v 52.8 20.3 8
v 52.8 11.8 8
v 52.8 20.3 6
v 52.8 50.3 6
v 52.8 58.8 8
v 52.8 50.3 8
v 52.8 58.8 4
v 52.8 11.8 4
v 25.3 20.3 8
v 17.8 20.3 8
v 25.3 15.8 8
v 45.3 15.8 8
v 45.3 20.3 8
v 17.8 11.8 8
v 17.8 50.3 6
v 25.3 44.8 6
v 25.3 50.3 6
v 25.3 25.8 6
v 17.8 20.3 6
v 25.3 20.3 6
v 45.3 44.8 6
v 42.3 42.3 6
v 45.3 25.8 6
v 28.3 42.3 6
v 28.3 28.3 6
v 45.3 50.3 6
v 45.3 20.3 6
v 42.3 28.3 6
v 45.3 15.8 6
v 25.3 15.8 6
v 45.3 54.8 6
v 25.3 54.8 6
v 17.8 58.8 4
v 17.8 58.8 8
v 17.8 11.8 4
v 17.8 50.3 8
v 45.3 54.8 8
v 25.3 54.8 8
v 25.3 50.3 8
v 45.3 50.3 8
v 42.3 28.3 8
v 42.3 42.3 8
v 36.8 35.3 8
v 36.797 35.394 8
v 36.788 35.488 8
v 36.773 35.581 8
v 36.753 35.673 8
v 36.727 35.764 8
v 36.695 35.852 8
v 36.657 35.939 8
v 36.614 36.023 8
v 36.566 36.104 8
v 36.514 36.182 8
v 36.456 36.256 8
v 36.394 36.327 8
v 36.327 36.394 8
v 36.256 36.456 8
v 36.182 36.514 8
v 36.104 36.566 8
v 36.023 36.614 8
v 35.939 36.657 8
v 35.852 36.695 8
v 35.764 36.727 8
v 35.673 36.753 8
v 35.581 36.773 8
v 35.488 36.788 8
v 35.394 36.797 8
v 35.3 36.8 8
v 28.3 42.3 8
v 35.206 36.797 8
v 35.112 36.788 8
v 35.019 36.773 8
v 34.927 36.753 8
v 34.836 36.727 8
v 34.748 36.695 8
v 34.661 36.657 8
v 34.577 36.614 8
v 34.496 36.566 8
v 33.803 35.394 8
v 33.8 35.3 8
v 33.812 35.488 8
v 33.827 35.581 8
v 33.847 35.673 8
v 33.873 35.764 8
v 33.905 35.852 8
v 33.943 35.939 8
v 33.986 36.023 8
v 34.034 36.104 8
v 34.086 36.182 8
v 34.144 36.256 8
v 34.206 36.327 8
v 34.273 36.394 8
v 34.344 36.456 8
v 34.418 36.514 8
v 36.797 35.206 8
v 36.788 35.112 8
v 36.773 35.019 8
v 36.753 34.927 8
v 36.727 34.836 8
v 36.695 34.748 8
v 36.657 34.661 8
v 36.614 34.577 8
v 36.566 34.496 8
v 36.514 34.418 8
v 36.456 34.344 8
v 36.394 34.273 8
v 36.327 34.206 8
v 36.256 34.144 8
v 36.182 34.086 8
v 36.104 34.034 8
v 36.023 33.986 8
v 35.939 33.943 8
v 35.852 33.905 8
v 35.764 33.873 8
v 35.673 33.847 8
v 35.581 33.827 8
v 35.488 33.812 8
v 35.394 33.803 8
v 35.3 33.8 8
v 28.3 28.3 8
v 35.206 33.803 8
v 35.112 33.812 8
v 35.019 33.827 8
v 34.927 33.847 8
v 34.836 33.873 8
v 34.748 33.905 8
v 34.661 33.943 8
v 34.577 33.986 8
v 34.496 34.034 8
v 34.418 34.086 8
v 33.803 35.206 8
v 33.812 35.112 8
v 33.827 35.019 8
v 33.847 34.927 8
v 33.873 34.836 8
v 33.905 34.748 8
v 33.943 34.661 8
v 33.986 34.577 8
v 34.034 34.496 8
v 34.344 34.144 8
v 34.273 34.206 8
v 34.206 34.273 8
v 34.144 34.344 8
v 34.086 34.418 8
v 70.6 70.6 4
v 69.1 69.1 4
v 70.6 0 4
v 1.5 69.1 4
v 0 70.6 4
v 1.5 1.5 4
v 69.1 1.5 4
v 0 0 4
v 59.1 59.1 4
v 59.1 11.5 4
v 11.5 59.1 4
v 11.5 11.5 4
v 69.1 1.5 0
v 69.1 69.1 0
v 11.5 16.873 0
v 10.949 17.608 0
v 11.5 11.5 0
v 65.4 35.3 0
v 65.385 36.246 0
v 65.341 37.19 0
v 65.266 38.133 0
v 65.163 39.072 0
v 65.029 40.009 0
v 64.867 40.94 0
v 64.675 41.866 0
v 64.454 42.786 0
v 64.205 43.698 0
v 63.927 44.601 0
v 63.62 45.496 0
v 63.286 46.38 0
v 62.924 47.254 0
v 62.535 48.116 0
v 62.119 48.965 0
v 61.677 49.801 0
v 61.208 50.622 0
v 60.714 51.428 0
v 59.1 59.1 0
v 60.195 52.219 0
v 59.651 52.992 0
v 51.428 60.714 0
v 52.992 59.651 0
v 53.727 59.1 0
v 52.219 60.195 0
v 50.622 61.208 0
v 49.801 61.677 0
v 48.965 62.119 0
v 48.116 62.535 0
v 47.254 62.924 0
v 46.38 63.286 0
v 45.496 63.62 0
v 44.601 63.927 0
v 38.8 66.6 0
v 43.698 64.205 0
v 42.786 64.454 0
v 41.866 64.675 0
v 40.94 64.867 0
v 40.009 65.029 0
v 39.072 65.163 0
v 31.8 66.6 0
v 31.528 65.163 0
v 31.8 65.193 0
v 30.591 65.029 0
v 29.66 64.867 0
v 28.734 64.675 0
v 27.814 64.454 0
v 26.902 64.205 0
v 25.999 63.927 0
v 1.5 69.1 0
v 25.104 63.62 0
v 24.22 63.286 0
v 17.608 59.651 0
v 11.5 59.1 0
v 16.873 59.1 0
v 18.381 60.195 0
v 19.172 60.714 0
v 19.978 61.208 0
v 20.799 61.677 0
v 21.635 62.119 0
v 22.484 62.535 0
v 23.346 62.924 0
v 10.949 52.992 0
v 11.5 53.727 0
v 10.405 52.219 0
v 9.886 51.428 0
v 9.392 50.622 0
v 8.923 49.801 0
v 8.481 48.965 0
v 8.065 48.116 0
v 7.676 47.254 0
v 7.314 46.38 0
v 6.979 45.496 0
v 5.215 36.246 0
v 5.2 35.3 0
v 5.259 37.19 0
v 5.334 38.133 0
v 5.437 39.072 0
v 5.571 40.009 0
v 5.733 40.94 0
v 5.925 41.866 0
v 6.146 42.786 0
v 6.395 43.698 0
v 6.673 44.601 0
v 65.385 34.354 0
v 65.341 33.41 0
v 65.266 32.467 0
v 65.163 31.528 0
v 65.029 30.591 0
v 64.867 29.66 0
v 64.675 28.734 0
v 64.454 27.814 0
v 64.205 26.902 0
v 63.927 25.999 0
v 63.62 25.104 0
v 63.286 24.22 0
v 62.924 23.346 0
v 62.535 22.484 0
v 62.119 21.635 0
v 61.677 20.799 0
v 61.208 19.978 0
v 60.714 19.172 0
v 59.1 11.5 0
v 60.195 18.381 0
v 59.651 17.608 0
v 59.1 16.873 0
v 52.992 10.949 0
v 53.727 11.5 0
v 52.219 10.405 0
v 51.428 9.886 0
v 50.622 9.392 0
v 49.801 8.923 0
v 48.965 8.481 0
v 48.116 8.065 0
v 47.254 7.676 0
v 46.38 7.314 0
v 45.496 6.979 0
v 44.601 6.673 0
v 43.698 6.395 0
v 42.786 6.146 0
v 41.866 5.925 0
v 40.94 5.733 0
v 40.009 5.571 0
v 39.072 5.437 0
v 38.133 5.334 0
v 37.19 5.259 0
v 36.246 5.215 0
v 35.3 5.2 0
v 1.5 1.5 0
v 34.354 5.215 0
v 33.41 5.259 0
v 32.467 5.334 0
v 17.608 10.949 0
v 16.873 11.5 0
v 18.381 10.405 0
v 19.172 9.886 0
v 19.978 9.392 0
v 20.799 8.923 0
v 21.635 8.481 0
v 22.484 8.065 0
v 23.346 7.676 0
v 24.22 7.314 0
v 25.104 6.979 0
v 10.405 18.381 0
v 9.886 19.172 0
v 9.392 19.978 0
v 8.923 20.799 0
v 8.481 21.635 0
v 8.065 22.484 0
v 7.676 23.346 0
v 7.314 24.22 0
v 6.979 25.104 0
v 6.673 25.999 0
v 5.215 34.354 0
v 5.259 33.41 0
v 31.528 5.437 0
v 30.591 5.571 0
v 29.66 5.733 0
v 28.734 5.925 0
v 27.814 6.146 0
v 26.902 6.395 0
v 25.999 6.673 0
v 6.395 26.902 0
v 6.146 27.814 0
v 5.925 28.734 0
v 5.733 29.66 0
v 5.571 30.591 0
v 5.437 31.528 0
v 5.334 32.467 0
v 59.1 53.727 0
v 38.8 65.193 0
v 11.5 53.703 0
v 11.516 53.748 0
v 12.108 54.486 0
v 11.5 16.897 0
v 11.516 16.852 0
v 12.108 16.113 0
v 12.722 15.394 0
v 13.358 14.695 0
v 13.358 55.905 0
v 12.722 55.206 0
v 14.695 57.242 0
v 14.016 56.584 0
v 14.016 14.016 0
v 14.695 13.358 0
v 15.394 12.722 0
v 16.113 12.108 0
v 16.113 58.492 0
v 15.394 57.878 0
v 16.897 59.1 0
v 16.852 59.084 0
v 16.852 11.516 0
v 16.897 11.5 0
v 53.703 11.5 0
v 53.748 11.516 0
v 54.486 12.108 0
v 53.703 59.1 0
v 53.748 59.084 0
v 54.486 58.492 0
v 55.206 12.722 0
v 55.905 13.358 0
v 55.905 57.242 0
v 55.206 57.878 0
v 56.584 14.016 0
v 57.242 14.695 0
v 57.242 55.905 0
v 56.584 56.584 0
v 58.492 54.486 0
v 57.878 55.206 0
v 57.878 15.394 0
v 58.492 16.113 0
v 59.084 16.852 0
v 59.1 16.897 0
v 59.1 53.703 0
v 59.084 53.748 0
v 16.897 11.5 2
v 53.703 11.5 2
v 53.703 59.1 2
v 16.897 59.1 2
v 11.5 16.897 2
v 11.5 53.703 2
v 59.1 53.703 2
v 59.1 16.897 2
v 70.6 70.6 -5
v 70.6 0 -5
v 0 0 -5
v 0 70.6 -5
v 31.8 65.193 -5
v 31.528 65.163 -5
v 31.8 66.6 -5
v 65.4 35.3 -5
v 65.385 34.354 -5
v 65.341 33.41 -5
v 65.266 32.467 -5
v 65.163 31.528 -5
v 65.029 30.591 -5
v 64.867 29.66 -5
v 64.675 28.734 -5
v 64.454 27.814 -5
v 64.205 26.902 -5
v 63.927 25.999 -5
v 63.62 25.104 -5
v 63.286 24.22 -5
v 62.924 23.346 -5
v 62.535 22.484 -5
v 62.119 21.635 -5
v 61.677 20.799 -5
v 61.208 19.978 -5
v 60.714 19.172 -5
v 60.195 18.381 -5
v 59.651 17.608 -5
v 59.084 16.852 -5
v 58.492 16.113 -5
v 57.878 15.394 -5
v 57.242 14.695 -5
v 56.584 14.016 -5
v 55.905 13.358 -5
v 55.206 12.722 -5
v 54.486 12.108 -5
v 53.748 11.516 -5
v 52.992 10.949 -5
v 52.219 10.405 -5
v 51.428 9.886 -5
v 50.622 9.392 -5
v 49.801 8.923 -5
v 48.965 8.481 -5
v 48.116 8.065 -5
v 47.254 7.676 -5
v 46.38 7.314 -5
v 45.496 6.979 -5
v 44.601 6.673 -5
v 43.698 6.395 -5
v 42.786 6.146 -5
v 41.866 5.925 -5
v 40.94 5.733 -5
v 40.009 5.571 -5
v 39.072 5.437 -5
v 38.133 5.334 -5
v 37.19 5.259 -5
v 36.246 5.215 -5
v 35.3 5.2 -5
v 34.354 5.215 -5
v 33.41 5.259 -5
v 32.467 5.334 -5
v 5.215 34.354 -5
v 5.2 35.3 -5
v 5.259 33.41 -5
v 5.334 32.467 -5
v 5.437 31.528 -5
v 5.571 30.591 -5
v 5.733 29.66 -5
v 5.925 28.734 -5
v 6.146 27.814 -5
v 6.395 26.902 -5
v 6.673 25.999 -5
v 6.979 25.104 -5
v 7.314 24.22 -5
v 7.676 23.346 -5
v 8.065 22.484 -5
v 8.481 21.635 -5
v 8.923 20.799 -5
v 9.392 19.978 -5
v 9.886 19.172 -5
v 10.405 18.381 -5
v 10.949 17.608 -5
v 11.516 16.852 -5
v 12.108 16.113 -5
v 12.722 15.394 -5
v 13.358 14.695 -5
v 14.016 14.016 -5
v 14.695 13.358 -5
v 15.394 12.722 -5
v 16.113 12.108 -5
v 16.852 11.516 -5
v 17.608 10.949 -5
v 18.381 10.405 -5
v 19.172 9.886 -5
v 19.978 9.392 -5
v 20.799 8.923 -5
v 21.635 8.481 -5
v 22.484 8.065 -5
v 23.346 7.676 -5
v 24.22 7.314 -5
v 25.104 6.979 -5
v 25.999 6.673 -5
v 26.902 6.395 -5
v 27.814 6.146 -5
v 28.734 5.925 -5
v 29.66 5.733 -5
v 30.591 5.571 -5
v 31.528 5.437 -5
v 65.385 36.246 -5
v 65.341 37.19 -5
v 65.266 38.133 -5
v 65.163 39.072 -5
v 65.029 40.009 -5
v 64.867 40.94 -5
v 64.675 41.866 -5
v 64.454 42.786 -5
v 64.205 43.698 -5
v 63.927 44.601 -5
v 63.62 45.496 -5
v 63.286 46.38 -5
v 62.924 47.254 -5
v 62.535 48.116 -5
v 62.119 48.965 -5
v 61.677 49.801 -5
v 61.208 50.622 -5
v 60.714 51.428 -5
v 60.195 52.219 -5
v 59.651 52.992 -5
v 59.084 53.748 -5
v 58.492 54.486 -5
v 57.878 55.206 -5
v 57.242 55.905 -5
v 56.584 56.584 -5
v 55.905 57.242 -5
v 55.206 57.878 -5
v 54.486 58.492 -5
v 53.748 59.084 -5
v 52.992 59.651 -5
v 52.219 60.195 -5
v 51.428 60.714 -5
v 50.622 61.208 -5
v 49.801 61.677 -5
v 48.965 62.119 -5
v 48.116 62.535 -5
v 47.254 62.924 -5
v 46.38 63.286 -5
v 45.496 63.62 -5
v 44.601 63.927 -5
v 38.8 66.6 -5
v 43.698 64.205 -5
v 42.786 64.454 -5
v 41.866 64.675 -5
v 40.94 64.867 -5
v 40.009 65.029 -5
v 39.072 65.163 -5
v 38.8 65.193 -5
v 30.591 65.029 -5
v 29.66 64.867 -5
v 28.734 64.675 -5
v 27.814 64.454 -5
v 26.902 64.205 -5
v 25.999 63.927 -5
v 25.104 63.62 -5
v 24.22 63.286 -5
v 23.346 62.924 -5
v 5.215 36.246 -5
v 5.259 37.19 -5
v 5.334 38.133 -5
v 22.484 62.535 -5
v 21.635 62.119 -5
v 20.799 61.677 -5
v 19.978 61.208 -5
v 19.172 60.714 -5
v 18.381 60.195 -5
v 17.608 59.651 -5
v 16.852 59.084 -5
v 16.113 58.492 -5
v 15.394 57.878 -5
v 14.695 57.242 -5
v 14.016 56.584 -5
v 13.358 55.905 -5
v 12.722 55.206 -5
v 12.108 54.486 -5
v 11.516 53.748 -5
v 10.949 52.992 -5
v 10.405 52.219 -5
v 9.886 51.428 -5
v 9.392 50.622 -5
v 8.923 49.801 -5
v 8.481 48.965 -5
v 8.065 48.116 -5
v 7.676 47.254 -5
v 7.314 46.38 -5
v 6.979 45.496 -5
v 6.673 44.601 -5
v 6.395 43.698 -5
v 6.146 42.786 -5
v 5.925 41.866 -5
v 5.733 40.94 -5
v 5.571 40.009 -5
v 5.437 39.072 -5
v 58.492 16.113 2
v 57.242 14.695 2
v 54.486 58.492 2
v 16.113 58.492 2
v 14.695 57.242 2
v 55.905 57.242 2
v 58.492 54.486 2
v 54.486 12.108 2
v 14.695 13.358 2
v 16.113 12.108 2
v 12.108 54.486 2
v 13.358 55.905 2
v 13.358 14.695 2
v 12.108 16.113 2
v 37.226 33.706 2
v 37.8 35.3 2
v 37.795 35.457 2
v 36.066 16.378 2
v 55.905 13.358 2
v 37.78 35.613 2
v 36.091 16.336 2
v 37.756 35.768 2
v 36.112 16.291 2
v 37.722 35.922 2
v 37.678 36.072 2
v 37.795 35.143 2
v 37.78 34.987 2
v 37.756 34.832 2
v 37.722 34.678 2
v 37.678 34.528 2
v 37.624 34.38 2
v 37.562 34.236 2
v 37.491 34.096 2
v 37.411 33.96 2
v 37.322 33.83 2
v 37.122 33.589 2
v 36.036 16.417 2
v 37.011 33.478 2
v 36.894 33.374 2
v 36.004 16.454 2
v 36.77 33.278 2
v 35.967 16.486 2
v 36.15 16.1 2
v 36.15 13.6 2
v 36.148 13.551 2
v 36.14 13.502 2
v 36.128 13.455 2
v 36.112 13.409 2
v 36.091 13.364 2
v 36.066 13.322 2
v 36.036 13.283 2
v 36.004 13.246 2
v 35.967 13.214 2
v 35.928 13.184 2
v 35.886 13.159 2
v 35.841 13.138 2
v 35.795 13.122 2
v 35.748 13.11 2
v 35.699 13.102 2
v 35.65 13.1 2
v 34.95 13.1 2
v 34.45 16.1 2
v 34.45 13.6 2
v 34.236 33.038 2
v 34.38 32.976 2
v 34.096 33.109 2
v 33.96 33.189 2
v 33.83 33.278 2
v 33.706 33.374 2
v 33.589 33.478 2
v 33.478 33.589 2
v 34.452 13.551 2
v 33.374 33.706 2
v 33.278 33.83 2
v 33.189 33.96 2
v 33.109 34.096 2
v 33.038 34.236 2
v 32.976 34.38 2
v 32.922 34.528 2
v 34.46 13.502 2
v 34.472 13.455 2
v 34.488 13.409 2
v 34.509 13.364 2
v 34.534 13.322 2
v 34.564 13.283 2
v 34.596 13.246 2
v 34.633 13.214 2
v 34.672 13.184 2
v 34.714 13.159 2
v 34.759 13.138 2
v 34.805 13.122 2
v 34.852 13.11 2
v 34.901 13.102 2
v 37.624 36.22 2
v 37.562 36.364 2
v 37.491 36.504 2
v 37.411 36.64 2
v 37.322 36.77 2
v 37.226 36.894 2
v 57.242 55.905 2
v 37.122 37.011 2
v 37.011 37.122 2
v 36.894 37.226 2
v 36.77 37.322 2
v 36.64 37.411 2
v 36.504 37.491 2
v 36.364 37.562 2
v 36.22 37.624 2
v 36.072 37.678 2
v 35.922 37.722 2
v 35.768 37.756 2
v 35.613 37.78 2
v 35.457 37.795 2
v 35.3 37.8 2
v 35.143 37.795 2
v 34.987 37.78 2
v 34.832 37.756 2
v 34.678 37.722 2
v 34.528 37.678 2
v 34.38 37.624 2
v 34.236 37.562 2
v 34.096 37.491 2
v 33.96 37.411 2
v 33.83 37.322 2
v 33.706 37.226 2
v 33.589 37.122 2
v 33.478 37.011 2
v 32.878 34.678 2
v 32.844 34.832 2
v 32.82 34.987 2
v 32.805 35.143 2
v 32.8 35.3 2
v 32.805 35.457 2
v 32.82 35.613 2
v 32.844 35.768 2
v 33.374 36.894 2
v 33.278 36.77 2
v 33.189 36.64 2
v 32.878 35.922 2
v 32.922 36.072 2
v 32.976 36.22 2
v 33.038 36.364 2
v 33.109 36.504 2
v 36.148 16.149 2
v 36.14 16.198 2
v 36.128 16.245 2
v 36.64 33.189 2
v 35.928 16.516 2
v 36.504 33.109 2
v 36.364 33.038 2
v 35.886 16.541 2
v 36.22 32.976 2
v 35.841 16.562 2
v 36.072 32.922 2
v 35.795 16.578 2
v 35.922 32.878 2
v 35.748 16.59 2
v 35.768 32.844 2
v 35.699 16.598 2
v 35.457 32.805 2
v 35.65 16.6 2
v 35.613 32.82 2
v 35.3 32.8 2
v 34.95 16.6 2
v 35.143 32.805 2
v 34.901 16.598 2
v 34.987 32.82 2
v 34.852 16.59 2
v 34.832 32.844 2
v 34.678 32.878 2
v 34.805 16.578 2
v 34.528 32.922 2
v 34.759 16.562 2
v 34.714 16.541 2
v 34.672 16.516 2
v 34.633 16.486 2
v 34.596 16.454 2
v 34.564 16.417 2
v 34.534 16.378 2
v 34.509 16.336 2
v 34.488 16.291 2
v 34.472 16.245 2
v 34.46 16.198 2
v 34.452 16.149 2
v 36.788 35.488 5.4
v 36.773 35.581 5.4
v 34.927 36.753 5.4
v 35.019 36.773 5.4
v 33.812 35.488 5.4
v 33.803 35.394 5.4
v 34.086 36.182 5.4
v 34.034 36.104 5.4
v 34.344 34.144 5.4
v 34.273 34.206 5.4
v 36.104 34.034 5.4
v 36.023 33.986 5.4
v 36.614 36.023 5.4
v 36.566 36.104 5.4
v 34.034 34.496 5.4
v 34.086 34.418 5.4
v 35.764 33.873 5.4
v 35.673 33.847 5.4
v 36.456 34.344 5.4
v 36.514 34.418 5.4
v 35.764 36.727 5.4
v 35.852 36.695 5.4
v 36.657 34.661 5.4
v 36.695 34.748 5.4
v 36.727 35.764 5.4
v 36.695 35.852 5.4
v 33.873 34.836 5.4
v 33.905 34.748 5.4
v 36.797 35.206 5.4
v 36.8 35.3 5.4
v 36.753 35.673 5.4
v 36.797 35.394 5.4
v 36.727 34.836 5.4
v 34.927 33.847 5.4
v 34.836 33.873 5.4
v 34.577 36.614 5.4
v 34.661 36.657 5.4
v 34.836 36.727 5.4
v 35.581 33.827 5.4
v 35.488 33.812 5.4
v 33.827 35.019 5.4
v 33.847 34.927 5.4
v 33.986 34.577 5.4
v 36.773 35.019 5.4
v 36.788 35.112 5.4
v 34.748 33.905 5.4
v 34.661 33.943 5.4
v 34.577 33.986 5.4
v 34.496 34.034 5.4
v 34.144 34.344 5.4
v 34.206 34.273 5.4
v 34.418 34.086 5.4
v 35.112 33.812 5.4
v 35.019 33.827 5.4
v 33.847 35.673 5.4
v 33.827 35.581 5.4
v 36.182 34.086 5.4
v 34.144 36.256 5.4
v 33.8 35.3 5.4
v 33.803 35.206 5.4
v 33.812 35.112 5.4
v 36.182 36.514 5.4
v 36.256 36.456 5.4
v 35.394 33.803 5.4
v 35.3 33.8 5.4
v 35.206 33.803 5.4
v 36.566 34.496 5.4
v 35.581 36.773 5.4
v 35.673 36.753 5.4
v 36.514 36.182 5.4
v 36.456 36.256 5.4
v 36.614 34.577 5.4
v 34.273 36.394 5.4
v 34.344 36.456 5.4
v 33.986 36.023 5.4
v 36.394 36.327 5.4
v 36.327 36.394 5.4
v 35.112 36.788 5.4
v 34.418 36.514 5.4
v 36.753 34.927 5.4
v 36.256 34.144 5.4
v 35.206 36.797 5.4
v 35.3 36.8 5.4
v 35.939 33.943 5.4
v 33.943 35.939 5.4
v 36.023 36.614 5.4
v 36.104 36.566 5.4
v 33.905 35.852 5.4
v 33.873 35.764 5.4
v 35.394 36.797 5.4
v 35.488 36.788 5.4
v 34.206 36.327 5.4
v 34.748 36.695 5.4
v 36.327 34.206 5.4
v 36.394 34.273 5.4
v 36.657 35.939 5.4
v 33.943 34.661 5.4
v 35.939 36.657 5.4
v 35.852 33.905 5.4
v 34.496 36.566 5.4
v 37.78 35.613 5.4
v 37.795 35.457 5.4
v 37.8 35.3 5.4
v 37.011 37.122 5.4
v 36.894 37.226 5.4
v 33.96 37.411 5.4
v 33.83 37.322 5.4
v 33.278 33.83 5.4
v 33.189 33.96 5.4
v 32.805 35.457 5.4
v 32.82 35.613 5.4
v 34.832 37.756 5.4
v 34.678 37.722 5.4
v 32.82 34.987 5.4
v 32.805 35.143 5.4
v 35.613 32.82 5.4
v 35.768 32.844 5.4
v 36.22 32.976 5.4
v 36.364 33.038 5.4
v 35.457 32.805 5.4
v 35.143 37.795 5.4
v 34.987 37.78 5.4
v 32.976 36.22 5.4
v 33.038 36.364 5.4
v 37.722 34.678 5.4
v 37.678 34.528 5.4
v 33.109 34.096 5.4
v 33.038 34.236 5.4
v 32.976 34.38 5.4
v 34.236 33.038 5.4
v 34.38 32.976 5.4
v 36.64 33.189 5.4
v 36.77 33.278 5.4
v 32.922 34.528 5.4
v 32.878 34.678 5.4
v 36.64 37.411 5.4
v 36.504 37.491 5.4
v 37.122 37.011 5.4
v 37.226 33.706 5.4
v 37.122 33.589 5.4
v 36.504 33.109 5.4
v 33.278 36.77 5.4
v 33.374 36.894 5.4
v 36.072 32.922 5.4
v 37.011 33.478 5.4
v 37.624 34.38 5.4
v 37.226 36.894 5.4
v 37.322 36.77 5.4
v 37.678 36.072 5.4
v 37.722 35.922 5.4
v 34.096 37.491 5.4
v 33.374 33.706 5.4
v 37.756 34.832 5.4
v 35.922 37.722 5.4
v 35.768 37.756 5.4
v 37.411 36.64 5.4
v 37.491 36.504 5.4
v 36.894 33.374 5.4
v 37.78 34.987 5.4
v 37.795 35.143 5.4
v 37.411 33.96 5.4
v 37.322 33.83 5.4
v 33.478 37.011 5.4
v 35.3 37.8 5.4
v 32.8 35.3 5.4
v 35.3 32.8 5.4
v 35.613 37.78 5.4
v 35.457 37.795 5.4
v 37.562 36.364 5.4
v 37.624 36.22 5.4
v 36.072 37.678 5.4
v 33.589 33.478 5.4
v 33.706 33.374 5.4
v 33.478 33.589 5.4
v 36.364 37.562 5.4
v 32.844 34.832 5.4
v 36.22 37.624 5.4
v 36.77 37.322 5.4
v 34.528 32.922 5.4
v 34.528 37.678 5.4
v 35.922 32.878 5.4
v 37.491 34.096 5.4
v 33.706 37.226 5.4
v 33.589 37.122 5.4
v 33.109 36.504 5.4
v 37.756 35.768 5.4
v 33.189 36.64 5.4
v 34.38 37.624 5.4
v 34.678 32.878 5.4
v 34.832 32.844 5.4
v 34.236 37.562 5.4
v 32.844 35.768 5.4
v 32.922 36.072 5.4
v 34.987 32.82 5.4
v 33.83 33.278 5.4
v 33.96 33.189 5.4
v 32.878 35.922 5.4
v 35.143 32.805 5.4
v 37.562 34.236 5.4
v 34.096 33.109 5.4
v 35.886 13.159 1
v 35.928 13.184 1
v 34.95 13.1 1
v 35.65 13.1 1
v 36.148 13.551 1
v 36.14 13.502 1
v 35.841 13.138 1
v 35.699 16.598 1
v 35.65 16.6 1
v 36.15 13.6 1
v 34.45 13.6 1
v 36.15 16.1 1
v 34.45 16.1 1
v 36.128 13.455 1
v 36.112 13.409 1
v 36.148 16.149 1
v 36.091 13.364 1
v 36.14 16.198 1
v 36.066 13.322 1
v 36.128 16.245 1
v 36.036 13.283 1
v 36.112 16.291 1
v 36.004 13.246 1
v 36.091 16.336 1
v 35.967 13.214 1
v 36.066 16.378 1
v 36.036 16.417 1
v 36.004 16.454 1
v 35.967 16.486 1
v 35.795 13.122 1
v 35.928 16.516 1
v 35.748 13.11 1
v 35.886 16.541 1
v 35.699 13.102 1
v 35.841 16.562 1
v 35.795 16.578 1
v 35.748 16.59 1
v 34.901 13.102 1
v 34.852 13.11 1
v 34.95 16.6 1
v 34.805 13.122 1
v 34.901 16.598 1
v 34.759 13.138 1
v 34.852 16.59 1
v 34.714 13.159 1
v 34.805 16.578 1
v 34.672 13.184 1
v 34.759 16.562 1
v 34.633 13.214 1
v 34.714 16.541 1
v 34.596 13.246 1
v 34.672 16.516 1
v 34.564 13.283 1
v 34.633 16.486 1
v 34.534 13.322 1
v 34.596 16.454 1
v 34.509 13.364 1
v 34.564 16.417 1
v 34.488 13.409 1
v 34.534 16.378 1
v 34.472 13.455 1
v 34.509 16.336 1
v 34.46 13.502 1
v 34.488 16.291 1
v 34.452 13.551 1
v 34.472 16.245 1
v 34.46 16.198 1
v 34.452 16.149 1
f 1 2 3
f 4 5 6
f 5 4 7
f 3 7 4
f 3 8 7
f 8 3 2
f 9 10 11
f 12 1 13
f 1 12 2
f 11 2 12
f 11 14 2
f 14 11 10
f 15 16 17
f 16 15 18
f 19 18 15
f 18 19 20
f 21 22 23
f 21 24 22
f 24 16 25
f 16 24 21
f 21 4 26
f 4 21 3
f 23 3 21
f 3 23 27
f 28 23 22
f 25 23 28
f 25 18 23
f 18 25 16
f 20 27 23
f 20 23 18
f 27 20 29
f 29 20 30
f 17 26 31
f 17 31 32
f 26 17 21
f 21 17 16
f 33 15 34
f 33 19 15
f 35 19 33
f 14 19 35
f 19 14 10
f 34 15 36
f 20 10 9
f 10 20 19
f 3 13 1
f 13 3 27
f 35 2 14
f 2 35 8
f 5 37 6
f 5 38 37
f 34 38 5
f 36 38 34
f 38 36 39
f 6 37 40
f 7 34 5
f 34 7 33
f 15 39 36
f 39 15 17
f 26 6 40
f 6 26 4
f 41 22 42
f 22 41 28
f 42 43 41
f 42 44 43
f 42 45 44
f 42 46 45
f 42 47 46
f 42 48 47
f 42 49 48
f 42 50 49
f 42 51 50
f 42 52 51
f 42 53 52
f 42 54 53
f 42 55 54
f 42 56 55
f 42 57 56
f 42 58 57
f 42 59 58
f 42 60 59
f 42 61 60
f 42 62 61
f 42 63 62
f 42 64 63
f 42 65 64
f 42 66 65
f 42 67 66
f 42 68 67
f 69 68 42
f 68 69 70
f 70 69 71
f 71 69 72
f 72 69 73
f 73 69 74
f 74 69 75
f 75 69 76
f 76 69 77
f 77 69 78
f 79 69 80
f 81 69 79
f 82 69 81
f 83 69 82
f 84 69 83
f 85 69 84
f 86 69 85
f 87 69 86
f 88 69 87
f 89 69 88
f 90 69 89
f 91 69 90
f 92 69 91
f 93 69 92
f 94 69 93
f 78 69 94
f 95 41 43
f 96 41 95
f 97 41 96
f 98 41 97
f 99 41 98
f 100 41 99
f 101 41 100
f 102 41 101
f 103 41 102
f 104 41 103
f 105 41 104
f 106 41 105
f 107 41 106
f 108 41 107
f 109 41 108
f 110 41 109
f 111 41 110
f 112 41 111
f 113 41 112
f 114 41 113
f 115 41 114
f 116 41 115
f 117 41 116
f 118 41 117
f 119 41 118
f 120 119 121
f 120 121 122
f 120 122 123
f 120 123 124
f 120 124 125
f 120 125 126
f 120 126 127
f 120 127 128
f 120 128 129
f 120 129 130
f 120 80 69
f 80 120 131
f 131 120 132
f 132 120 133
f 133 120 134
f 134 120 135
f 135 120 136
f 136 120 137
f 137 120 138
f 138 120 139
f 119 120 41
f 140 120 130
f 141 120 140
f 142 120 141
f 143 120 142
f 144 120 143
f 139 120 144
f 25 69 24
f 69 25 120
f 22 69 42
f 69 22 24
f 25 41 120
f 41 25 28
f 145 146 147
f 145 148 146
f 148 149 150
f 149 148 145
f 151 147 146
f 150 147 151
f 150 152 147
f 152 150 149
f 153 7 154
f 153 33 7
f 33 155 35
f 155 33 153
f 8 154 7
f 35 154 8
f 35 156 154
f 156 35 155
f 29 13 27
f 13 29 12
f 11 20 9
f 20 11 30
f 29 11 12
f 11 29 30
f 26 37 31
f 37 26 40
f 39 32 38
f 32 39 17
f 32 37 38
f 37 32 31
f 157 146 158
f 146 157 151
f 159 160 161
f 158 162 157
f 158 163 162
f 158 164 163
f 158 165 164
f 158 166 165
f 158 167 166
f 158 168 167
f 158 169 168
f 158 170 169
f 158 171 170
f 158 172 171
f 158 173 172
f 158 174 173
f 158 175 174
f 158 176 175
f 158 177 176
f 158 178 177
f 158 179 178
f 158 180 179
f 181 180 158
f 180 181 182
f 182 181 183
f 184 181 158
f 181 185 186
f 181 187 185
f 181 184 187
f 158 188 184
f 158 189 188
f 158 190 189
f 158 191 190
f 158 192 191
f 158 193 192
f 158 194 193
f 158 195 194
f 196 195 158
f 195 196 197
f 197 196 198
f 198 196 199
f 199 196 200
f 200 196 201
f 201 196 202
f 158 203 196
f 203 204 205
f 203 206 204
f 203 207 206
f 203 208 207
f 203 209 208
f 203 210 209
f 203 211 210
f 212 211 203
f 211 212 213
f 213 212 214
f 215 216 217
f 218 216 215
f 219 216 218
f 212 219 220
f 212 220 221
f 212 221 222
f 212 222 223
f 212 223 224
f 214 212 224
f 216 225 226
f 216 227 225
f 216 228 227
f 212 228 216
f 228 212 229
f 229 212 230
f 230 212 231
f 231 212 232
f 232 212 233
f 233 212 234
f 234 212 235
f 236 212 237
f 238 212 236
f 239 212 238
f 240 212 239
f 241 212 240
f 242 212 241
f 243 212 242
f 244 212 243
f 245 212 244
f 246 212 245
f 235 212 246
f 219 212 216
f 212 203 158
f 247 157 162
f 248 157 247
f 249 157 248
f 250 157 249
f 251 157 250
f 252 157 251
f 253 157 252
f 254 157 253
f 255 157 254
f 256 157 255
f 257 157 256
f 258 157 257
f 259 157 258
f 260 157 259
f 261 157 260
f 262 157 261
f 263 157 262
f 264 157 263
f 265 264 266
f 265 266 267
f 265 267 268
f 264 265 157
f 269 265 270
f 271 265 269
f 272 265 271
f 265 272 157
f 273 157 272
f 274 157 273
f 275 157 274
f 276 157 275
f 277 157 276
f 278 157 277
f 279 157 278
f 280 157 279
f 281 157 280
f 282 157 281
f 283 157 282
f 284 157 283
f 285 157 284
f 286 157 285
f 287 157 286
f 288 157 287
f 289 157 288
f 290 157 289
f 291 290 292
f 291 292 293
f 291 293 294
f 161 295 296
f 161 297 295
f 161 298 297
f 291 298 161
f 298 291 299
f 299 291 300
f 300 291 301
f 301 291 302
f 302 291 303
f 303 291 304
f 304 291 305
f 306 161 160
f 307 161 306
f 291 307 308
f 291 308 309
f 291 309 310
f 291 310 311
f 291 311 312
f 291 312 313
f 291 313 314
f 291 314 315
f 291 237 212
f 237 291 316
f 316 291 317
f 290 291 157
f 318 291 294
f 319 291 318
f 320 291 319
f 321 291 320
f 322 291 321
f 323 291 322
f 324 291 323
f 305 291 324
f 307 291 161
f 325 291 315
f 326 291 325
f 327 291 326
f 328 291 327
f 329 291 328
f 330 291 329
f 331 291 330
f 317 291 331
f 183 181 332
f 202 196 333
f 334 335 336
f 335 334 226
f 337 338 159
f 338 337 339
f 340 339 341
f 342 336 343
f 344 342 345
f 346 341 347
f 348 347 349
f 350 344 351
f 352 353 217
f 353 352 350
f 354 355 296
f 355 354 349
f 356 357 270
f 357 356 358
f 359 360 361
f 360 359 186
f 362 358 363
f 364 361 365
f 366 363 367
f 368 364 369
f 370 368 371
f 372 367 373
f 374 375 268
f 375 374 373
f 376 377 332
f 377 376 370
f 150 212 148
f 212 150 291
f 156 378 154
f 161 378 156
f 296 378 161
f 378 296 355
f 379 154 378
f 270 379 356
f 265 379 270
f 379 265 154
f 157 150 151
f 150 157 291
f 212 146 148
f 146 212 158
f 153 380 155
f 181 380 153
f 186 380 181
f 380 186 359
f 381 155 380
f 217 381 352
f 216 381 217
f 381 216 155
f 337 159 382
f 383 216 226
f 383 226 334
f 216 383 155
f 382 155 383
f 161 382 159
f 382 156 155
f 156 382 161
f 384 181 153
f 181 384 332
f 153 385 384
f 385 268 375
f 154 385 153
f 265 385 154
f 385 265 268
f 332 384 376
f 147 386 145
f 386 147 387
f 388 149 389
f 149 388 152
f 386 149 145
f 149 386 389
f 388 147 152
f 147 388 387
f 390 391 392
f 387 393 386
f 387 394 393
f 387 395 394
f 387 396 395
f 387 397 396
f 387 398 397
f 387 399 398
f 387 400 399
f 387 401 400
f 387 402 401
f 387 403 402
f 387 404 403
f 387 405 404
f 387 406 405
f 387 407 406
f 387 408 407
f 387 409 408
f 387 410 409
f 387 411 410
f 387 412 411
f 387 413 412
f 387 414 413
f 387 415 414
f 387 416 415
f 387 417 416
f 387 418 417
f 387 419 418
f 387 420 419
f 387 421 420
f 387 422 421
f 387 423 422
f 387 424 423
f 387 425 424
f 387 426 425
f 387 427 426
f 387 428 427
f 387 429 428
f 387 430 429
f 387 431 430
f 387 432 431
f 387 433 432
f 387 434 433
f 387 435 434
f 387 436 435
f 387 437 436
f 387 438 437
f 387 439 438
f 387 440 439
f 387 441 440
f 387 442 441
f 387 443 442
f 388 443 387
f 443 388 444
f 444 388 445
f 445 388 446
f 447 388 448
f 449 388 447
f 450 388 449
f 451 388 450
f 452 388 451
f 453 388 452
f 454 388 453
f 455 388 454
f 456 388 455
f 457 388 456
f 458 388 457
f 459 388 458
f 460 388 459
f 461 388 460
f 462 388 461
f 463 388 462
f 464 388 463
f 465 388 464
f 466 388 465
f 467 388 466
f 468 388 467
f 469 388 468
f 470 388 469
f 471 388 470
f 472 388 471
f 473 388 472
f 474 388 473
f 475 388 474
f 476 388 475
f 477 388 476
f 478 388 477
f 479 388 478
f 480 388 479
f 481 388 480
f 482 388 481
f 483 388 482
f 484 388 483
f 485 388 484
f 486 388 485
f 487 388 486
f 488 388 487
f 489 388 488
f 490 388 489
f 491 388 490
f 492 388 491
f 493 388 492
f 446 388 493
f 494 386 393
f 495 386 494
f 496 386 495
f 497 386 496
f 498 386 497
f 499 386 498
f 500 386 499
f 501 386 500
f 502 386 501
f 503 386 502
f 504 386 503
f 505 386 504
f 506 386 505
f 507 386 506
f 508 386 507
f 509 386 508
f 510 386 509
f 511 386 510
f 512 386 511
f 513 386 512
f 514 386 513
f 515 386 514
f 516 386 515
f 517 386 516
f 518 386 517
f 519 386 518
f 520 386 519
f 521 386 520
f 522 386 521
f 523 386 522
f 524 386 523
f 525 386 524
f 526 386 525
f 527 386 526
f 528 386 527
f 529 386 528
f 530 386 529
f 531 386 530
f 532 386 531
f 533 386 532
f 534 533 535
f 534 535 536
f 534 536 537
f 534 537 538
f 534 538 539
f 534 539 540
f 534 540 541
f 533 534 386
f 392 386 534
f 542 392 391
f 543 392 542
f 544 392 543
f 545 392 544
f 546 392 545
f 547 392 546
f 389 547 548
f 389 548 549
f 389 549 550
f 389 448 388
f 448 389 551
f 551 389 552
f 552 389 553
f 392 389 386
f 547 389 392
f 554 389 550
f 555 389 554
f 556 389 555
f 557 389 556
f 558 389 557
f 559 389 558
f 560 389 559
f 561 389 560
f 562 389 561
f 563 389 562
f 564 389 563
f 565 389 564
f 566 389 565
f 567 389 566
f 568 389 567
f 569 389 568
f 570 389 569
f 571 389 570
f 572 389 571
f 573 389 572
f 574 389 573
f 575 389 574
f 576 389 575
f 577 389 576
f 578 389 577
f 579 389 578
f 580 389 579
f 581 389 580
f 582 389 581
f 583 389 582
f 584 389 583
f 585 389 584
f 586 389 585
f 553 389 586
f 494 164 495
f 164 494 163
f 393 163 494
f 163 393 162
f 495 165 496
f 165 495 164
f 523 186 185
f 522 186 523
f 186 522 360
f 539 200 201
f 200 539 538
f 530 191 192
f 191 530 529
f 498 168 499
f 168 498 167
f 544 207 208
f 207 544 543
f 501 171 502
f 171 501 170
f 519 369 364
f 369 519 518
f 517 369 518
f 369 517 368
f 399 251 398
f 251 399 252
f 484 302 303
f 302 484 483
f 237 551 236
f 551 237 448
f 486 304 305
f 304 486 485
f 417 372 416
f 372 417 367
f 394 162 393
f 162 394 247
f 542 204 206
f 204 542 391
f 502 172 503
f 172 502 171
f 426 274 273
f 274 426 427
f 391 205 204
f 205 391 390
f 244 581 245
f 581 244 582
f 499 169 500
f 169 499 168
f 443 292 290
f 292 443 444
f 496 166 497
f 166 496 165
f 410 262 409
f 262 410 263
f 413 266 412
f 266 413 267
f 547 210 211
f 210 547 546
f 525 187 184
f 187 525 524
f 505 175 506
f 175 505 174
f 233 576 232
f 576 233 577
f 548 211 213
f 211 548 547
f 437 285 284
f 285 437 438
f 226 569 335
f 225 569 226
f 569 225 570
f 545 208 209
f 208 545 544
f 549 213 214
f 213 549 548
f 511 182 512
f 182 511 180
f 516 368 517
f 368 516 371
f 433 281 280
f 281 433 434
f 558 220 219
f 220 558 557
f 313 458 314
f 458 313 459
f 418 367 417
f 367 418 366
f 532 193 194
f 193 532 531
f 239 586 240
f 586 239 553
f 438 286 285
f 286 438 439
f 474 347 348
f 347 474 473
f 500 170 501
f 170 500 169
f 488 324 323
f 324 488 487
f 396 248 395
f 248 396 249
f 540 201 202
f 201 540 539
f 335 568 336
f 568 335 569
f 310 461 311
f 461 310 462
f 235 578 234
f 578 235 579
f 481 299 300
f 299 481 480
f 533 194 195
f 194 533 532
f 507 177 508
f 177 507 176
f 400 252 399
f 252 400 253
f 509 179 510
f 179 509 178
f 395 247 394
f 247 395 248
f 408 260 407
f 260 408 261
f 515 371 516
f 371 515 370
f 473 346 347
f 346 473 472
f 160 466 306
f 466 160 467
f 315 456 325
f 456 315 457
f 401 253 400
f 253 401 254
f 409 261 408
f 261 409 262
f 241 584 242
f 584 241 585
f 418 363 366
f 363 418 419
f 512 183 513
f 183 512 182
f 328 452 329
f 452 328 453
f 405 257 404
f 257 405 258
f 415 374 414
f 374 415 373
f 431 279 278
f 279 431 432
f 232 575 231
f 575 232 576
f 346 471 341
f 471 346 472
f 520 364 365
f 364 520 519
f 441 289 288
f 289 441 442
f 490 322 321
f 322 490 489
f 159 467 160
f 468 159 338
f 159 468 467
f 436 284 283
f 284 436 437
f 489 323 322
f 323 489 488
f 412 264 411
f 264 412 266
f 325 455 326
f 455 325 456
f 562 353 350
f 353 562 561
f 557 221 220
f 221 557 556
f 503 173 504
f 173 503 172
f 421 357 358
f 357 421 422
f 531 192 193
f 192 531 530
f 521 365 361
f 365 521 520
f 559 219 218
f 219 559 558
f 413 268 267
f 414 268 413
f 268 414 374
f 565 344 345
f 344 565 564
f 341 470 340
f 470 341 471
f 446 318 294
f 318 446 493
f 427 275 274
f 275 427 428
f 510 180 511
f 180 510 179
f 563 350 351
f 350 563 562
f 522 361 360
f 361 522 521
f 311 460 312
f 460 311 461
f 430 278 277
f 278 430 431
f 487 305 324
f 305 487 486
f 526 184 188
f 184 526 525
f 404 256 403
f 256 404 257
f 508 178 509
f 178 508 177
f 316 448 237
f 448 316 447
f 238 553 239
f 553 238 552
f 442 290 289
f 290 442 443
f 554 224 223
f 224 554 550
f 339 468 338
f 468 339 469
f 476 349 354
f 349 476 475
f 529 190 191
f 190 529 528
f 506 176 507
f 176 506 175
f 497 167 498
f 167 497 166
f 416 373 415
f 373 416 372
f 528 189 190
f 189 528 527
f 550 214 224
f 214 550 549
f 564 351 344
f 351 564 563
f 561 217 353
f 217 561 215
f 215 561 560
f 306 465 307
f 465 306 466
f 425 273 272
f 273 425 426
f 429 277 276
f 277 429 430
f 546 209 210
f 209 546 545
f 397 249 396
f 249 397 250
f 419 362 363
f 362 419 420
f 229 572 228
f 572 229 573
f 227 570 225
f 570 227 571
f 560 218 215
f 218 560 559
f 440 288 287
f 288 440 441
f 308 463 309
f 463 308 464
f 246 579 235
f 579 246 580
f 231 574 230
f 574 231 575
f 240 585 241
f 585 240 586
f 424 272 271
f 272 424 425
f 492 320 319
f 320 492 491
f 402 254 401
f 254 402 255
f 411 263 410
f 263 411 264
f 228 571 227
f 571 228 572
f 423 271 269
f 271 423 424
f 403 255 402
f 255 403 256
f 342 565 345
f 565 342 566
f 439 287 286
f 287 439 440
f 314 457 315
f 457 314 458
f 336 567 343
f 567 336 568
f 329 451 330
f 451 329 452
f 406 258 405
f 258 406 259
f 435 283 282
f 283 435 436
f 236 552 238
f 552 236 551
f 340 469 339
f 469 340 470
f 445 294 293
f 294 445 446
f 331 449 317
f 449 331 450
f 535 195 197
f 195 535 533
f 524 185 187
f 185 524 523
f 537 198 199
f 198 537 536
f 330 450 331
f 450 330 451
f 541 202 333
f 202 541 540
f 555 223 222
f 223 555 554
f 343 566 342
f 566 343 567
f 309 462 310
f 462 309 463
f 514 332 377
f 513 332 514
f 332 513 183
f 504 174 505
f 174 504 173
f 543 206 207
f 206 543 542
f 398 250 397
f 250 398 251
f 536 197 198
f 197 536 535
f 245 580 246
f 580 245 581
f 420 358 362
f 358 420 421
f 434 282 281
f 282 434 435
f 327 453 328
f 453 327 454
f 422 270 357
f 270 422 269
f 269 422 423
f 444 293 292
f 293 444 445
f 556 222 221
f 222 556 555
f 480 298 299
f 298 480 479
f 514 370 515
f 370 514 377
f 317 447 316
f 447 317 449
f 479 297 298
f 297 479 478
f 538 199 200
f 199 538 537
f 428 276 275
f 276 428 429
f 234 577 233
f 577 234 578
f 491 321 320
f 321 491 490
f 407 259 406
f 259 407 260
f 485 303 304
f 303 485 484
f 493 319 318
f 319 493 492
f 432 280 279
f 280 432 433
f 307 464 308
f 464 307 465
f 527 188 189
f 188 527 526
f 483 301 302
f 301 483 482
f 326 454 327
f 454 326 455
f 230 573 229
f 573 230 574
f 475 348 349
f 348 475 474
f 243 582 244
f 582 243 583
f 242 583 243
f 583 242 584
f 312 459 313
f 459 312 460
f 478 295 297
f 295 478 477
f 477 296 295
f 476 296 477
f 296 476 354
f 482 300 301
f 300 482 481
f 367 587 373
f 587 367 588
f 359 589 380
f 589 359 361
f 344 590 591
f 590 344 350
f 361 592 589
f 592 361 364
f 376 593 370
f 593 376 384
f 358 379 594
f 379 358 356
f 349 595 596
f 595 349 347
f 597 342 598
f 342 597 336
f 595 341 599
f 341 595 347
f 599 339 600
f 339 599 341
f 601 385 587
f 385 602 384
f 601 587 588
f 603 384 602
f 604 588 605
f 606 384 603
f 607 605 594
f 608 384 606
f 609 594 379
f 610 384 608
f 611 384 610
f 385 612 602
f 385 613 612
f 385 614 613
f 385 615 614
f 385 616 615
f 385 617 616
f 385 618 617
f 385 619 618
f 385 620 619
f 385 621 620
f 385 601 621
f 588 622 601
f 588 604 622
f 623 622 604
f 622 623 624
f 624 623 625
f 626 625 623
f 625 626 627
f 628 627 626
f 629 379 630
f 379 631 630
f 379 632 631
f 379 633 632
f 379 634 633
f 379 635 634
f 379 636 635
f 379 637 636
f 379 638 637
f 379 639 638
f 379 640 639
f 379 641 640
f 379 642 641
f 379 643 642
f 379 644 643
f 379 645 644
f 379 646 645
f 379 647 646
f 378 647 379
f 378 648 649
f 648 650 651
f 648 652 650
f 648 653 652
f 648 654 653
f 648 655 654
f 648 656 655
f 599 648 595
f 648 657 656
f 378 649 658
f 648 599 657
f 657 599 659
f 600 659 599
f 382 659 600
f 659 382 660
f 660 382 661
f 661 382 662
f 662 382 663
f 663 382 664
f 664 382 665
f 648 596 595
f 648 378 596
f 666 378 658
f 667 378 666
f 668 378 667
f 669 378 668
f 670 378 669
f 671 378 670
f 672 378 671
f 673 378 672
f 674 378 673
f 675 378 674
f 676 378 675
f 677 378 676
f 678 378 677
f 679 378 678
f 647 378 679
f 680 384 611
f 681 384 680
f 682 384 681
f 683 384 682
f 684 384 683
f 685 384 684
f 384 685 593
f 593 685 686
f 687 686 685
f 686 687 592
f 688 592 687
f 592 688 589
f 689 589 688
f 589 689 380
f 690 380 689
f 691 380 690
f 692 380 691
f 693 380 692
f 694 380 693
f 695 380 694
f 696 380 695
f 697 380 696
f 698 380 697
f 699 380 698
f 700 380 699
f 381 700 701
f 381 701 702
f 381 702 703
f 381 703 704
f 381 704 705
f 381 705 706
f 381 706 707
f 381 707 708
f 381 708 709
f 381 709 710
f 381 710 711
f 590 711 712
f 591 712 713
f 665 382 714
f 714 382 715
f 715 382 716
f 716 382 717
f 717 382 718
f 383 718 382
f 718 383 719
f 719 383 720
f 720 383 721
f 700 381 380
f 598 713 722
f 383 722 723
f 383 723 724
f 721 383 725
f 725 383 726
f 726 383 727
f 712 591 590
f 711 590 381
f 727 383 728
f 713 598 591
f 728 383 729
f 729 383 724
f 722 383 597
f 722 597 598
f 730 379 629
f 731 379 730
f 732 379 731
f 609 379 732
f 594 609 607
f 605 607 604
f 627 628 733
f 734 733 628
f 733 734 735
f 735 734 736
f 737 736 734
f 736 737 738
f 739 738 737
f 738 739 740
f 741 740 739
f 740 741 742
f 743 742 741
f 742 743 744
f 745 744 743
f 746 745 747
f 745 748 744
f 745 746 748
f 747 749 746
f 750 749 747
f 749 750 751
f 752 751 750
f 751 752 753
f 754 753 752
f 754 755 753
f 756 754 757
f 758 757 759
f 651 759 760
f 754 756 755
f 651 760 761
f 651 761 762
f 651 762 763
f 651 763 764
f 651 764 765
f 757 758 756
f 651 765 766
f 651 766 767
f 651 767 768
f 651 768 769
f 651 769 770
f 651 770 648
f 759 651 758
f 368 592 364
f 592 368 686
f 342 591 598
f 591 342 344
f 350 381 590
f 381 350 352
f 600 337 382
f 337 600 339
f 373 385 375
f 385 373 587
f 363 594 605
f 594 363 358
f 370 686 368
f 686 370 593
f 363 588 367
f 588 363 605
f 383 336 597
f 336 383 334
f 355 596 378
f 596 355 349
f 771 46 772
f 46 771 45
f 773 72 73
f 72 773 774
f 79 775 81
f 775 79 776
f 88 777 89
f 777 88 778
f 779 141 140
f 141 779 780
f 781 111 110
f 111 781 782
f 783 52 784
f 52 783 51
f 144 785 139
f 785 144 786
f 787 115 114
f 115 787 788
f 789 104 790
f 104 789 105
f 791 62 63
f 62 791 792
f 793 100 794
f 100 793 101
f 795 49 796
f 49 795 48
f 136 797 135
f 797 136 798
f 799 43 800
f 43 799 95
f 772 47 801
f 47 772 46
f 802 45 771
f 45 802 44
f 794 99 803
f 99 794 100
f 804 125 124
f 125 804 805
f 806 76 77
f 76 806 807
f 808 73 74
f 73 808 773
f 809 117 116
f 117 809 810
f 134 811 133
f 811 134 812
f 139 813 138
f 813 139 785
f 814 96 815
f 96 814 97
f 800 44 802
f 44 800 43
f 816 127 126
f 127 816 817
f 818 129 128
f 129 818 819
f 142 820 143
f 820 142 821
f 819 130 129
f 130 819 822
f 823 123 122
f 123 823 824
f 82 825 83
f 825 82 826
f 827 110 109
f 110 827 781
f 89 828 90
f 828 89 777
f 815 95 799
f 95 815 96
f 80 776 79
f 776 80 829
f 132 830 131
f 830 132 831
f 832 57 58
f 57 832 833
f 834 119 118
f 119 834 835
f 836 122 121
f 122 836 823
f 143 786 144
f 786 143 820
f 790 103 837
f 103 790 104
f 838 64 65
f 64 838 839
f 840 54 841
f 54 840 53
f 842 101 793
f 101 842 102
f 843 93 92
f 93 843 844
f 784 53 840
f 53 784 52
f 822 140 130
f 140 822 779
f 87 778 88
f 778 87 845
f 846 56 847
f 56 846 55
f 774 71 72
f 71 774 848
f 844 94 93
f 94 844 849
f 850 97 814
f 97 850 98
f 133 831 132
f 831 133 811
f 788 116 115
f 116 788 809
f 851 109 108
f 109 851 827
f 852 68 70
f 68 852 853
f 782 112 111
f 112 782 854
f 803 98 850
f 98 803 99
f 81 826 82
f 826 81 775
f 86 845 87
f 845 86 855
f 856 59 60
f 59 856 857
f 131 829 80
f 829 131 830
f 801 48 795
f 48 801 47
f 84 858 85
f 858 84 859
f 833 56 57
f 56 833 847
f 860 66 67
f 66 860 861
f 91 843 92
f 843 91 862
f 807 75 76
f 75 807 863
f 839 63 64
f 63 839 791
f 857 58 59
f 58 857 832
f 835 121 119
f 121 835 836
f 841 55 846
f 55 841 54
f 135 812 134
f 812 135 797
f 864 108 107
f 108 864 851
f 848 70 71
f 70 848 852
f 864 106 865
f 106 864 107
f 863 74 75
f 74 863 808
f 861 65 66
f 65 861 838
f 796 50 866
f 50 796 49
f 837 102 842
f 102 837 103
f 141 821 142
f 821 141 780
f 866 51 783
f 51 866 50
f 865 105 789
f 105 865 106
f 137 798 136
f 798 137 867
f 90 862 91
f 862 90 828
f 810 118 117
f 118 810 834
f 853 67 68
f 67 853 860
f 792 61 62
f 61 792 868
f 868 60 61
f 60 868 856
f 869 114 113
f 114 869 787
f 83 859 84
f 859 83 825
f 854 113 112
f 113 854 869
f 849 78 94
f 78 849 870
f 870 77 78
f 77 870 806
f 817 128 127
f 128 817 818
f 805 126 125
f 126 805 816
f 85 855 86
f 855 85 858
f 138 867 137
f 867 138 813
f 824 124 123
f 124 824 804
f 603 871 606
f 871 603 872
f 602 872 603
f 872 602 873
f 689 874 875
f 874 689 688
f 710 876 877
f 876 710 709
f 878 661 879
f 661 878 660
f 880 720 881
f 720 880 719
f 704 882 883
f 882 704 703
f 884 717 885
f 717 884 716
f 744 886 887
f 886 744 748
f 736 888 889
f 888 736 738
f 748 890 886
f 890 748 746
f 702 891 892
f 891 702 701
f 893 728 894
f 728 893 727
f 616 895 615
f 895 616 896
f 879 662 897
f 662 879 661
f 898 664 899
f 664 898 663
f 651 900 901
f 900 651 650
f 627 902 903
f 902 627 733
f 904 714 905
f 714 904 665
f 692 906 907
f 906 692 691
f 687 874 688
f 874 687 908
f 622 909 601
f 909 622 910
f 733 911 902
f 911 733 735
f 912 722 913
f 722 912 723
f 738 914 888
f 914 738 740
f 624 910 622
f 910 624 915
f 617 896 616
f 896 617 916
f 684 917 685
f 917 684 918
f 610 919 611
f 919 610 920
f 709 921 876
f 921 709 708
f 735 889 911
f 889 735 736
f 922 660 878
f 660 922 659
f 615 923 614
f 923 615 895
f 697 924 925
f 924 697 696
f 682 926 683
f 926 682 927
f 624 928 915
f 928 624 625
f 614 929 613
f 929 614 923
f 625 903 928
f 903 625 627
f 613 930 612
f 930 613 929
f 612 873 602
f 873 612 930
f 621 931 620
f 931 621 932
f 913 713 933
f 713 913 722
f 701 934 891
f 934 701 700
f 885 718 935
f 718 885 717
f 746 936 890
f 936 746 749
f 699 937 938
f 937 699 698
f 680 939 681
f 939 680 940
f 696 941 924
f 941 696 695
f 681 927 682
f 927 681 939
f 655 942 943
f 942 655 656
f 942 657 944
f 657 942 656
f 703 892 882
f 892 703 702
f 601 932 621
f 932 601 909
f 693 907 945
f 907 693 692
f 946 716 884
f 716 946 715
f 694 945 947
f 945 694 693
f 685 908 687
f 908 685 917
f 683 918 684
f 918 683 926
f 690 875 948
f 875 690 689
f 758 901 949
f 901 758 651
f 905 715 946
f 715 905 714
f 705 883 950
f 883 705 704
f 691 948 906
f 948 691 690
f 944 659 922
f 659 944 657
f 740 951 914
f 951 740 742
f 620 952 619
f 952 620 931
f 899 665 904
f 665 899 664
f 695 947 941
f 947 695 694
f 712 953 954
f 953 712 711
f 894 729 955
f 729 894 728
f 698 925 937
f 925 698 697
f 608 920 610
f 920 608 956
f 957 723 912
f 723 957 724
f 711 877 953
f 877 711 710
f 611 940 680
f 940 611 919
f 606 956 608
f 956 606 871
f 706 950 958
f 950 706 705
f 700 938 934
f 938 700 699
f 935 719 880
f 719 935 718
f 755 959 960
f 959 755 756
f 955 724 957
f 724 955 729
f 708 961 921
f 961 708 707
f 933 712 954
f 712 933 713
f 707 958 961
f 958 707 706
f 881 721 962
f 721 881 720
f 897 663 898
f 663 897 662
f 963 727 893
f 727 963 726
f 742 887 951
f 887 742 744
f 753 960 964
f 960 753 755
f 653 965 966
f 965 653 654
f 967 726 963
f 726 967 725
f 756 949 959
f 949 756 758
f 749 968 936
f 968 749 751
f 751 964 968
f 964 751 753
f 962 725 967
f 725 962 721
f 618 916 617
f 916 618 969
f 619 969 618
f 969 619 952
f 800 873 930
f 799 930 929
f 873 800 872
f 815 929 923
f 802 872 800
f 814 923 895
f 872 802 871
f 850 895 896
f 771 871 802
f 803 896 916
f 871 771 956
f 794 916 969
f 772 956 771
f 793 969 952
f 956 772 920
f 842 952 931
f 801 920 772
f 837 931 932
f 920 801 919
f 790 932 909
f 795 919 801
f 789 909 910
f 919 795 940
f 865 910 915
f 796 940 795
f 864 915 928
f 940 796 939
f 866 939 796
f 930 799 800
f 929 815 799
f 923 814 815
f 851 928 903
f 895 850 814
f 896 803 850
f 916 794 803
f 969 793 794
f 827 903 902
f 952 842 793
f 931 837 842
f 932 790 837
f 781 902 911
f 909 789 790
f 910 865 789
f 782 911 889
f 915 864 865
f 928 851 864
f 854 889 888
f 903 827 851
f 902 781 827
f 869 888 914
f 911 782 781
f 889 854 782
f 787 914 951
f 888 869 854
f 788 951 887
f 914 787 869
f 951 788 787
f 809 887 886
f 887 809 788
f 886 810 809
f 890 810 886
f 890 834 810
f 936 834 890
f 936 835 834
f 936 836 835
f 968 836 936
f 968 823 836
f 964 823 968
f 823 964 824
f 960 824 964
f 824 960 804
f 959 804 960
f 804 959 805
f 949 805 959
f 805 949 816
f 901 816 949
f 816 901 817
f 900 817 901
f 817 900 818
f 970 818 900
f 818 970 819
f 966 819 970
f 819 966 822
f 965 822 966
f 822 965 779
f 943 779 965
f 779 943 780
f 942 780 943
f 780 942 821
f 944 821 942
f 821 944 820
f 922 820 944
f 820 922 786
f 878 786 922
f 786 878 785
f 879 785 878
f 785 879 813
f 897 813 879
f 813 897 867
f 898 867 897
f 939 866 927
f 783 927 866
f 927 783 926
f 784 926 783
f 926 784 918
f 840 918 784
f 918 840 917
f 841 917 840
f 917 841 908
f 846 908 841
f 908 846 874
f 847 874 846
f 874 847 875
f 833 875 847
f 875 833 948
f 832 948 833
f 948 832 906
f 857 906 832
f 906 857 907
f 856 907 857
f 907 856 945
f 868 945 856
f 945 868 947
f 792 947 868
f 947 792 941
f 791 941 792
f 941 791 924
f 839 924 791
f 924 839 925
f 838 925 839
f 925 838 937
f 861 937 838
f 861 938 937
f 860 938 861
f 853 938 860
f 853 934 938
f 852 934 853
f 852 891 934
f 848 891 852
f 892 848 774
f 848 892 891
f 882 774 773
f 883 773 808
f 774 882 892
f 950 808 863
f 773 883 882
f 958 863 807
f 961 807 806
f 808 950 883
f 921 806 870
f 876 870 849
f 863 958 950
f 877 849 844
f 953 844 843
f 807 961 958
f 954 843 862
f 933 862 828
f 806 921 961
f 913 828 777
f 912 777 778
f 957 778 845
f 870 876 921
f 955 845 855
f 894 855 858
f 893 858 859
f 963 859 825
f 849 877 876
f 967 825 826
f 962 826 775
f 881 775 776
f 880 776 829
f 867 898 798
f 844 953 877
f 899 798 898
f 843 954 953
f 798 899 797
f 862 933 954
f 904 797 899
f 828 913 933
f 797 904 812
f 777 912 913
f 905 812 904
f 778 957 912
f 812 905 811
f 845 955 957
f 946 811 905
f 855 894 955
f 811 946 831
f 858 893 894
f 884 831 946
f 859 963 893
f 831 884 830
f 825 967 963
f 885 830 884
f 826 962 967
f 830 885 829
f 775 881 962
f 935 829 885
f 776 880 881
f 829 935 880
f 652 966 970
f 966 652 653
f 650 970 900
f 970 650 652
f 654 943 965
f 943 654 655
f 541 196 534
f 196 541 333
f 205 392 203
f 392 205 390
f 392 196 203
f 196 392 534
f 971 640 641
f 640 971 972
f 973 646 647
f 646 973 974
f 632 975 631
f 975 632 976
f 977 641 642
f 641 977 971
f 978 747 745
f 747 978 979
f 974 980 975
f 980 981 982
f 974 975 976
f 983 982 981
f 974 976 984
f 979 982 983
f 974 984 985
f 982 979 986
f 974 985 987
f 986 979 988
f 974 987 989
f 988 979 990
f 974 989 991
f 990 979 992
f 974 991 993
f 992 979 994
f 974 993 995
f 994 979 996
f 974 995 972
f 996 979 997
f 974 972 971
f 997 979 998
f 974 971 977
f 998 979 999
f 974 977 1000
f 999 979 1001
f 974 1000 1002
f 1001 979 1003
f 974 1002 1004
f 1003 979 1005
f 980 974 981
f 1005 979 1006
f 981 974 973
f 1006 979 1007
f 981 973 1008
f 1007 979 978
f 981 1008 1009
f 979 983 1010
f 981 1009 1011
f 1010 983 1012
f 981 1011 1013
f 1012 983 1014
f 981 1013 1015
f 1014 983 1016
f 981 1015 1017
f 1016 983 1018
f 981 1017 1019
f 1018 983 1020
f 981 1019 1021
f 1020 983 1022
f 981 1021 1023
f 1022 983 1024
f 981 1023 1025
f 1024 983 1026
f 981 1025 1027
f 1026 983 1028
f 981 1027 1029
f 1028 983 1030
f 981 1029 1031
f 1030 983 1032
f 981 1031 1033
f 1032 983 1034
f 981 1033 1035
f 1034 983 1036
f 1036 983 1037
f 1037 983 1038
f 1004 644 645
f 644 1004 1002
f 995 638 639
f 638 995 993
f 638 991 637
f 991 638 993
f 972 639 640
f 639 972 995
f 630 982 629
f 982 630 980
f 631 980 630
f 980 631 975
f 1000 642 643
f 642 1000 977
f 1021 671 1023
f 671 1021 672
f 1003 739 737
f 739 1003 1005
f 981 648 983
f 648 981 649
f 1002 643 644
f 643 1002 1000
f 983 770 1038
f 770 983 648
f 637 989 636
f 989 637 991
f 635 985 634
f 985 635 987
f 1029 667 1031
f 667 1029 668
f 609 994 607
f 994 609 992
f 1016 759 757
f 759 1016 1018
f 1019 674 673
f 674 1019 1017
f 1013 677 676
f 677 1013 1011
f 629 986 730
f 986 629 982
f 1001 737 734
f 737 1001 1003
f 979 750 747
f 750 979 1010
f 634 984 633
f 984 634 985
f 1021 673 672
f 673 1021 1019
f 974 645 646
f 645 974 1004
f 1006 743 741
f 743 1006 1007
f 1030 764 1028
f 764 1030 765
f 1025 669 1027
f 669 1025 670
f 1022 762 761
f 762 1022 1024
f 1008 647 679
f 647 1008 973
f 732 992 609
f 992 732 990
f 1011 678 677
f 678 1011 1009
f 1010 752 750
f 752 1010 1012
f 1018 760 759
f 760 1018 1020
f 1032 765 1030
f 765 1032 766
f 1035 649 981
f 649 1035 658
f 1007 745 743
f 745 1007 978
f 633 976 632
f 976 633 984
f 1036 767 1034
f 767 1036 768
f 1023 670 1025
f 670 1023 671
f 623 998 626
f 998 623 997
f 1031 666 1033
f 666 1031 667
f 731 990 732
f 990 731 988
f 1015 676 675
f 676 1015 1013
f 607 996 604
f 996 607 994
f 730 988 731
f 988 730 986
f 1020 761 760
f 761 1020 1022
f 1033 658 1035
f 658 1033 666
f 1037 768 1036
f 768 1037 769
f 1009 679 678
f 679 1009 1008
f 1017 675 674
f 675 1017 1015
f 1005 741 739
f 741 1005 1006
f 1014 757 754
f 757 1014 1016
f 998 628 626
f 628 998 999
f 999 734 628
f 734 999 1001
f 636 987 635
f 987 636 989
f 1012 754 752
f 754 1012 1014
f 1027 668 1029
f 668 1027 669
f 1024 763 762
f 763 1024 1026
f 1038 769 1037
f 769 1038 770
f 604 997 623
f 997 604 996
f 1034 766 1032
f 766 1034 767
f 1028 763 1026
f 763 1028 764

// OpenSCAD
// file: parts.scad
Mtolerance = 0.1;
M5size = 7.8;
M2_5size = 4.9;

function M5() = M5size + Mtolerance;

function M2_5() = M2_5size + Mtolerance;

module hexHole(flatToFlatDistance, depth) {
    previewOptimize = 0.1;
    hexagonSide = flatToFlatDistance / (cos(30) * 2);

    translate([0, 0, -previewOptimize]) {
        linear_extrude(height=depth + previewOptimize * 2, center=false) {
            polygon(points=[
                    [hexagonSide, 0],
                    [hexagonSide / 2, sqrt(3) * hexagonSide / 2],
                    [-hexagonSide / 2, sqrt(3) * hexagonSide / 2],
                    [-hexagonSide, 0],
                    [-hexagonSide / 2, -sqrt(3) * hexagonSide / 2],
                    [hexagonSide / 2, -sqrt(3) * hexagonSide / 2]
                ]);
        }
    }
}

// Rounded rectangle module
module rounded_rectangle(width, height, r, fn=64) {
    // ensure radius doesn't exceed half of width/height
    rr = min(r, width/2, height/2);

    translate([rr, rr])
        offset(r=rr, $fn=fn)
            square([width - 2*rr, height - 2*rr]);

}
// main file
use <./parts.scad>
base_thickness=2;

module connector() {
    difference() {
        union() {
            cube([35, 47, base_thickness], center = false);

            translate([0, 0, base_thickness]) {
                cube([35, 8.5, 2], center = false);

                translate([0, 47 - 8.5, 0])
                    cube([35, 8.5, 2], center = false);

                translate([35 / 2 - 14 / 2, 47 / 2 - 14 / 2, 0])
                    cube([14, 14, 2], center = false);
            }
        }

        translate([0, 0, base_thickness]) {
            translate([35 / 2 - 20 / 2, 6.5 - 2.5, 0])
                cube([20, 10, 2], center = false);

            translate([35 / 2 - 20 / 2, 30.5 + 2.5, 0])
                cube([20, 10, 2], center = false);
        }

        /*
*/
    }
}



module distance_holder() {
    difference() {
        cube([70.6, 70.6, 4], center = false);

        outer_ring_d = 1.5;
        translate([outer_ring_d, outer_ring_d, 0]) {
            cube([70.6 - outer_ring_d*2, 10, 8], center = false);

            translate([0, 70.6 - 10 - outer_ring_d*2, 0])
                cube([70.6 - outer_ring_d*2, 10, 8], center = false);
        }

        translate([outer_ring_d, outer_ring_d, 0]) {
            cube([10, 70.6 - outer_ring_d*2, 8], center = false);

            translate([70.6 - 10 - outer_ring_d*2, 0, 0])
                cube([10, 70.6 - outer_ring_d*2, 8], center = false);
        }
    }

}

module ring() {
    difference() {
        cube([70.6, 70.6, 5], center = false);

        translate([70.6 / 2, 70.6 / 2, -2])
            cylinder(d = 60.2, h = 8, center = false, $fn = 200);
    }
}

union() {
    difference() {
        union() {
            translate([70.6 / 2 - 35 / 2, 70.6 / 2 - 47 / 2, 4])
                connector();

            distance_holder();

            translate([0, 0, -5])
                ring();
        }

        translate([70.6 / 2, 70.6 / 2, -6])
            cylinder(d = 60.2, h = 8, center = false, $fn = 100);

        translate([76.6 / 2 - 3, 76.6 / 2 - 3, -20]) {
            cylinder(d = 3, h = 50, center = false, $fn = 100);
        }

        translate([76.6 / 2 - 3, 76.6 / 2 - 3, -2.1]) {
            cylinder(d = 5, h = 7.5, center = false, $fn = 100);
        }

        // Cut out opening gap
        translate([70.6 / 2 - 7/2,70.6-3-4,-10])
            cube([7, 3, 20], center = false);
    }

    translate([70.6/2 - 1.7/2,5.1+8,1])
        linear_extrude(height=1)
            rounded_rectangle(1.7, 3.5, 0.5);

}
